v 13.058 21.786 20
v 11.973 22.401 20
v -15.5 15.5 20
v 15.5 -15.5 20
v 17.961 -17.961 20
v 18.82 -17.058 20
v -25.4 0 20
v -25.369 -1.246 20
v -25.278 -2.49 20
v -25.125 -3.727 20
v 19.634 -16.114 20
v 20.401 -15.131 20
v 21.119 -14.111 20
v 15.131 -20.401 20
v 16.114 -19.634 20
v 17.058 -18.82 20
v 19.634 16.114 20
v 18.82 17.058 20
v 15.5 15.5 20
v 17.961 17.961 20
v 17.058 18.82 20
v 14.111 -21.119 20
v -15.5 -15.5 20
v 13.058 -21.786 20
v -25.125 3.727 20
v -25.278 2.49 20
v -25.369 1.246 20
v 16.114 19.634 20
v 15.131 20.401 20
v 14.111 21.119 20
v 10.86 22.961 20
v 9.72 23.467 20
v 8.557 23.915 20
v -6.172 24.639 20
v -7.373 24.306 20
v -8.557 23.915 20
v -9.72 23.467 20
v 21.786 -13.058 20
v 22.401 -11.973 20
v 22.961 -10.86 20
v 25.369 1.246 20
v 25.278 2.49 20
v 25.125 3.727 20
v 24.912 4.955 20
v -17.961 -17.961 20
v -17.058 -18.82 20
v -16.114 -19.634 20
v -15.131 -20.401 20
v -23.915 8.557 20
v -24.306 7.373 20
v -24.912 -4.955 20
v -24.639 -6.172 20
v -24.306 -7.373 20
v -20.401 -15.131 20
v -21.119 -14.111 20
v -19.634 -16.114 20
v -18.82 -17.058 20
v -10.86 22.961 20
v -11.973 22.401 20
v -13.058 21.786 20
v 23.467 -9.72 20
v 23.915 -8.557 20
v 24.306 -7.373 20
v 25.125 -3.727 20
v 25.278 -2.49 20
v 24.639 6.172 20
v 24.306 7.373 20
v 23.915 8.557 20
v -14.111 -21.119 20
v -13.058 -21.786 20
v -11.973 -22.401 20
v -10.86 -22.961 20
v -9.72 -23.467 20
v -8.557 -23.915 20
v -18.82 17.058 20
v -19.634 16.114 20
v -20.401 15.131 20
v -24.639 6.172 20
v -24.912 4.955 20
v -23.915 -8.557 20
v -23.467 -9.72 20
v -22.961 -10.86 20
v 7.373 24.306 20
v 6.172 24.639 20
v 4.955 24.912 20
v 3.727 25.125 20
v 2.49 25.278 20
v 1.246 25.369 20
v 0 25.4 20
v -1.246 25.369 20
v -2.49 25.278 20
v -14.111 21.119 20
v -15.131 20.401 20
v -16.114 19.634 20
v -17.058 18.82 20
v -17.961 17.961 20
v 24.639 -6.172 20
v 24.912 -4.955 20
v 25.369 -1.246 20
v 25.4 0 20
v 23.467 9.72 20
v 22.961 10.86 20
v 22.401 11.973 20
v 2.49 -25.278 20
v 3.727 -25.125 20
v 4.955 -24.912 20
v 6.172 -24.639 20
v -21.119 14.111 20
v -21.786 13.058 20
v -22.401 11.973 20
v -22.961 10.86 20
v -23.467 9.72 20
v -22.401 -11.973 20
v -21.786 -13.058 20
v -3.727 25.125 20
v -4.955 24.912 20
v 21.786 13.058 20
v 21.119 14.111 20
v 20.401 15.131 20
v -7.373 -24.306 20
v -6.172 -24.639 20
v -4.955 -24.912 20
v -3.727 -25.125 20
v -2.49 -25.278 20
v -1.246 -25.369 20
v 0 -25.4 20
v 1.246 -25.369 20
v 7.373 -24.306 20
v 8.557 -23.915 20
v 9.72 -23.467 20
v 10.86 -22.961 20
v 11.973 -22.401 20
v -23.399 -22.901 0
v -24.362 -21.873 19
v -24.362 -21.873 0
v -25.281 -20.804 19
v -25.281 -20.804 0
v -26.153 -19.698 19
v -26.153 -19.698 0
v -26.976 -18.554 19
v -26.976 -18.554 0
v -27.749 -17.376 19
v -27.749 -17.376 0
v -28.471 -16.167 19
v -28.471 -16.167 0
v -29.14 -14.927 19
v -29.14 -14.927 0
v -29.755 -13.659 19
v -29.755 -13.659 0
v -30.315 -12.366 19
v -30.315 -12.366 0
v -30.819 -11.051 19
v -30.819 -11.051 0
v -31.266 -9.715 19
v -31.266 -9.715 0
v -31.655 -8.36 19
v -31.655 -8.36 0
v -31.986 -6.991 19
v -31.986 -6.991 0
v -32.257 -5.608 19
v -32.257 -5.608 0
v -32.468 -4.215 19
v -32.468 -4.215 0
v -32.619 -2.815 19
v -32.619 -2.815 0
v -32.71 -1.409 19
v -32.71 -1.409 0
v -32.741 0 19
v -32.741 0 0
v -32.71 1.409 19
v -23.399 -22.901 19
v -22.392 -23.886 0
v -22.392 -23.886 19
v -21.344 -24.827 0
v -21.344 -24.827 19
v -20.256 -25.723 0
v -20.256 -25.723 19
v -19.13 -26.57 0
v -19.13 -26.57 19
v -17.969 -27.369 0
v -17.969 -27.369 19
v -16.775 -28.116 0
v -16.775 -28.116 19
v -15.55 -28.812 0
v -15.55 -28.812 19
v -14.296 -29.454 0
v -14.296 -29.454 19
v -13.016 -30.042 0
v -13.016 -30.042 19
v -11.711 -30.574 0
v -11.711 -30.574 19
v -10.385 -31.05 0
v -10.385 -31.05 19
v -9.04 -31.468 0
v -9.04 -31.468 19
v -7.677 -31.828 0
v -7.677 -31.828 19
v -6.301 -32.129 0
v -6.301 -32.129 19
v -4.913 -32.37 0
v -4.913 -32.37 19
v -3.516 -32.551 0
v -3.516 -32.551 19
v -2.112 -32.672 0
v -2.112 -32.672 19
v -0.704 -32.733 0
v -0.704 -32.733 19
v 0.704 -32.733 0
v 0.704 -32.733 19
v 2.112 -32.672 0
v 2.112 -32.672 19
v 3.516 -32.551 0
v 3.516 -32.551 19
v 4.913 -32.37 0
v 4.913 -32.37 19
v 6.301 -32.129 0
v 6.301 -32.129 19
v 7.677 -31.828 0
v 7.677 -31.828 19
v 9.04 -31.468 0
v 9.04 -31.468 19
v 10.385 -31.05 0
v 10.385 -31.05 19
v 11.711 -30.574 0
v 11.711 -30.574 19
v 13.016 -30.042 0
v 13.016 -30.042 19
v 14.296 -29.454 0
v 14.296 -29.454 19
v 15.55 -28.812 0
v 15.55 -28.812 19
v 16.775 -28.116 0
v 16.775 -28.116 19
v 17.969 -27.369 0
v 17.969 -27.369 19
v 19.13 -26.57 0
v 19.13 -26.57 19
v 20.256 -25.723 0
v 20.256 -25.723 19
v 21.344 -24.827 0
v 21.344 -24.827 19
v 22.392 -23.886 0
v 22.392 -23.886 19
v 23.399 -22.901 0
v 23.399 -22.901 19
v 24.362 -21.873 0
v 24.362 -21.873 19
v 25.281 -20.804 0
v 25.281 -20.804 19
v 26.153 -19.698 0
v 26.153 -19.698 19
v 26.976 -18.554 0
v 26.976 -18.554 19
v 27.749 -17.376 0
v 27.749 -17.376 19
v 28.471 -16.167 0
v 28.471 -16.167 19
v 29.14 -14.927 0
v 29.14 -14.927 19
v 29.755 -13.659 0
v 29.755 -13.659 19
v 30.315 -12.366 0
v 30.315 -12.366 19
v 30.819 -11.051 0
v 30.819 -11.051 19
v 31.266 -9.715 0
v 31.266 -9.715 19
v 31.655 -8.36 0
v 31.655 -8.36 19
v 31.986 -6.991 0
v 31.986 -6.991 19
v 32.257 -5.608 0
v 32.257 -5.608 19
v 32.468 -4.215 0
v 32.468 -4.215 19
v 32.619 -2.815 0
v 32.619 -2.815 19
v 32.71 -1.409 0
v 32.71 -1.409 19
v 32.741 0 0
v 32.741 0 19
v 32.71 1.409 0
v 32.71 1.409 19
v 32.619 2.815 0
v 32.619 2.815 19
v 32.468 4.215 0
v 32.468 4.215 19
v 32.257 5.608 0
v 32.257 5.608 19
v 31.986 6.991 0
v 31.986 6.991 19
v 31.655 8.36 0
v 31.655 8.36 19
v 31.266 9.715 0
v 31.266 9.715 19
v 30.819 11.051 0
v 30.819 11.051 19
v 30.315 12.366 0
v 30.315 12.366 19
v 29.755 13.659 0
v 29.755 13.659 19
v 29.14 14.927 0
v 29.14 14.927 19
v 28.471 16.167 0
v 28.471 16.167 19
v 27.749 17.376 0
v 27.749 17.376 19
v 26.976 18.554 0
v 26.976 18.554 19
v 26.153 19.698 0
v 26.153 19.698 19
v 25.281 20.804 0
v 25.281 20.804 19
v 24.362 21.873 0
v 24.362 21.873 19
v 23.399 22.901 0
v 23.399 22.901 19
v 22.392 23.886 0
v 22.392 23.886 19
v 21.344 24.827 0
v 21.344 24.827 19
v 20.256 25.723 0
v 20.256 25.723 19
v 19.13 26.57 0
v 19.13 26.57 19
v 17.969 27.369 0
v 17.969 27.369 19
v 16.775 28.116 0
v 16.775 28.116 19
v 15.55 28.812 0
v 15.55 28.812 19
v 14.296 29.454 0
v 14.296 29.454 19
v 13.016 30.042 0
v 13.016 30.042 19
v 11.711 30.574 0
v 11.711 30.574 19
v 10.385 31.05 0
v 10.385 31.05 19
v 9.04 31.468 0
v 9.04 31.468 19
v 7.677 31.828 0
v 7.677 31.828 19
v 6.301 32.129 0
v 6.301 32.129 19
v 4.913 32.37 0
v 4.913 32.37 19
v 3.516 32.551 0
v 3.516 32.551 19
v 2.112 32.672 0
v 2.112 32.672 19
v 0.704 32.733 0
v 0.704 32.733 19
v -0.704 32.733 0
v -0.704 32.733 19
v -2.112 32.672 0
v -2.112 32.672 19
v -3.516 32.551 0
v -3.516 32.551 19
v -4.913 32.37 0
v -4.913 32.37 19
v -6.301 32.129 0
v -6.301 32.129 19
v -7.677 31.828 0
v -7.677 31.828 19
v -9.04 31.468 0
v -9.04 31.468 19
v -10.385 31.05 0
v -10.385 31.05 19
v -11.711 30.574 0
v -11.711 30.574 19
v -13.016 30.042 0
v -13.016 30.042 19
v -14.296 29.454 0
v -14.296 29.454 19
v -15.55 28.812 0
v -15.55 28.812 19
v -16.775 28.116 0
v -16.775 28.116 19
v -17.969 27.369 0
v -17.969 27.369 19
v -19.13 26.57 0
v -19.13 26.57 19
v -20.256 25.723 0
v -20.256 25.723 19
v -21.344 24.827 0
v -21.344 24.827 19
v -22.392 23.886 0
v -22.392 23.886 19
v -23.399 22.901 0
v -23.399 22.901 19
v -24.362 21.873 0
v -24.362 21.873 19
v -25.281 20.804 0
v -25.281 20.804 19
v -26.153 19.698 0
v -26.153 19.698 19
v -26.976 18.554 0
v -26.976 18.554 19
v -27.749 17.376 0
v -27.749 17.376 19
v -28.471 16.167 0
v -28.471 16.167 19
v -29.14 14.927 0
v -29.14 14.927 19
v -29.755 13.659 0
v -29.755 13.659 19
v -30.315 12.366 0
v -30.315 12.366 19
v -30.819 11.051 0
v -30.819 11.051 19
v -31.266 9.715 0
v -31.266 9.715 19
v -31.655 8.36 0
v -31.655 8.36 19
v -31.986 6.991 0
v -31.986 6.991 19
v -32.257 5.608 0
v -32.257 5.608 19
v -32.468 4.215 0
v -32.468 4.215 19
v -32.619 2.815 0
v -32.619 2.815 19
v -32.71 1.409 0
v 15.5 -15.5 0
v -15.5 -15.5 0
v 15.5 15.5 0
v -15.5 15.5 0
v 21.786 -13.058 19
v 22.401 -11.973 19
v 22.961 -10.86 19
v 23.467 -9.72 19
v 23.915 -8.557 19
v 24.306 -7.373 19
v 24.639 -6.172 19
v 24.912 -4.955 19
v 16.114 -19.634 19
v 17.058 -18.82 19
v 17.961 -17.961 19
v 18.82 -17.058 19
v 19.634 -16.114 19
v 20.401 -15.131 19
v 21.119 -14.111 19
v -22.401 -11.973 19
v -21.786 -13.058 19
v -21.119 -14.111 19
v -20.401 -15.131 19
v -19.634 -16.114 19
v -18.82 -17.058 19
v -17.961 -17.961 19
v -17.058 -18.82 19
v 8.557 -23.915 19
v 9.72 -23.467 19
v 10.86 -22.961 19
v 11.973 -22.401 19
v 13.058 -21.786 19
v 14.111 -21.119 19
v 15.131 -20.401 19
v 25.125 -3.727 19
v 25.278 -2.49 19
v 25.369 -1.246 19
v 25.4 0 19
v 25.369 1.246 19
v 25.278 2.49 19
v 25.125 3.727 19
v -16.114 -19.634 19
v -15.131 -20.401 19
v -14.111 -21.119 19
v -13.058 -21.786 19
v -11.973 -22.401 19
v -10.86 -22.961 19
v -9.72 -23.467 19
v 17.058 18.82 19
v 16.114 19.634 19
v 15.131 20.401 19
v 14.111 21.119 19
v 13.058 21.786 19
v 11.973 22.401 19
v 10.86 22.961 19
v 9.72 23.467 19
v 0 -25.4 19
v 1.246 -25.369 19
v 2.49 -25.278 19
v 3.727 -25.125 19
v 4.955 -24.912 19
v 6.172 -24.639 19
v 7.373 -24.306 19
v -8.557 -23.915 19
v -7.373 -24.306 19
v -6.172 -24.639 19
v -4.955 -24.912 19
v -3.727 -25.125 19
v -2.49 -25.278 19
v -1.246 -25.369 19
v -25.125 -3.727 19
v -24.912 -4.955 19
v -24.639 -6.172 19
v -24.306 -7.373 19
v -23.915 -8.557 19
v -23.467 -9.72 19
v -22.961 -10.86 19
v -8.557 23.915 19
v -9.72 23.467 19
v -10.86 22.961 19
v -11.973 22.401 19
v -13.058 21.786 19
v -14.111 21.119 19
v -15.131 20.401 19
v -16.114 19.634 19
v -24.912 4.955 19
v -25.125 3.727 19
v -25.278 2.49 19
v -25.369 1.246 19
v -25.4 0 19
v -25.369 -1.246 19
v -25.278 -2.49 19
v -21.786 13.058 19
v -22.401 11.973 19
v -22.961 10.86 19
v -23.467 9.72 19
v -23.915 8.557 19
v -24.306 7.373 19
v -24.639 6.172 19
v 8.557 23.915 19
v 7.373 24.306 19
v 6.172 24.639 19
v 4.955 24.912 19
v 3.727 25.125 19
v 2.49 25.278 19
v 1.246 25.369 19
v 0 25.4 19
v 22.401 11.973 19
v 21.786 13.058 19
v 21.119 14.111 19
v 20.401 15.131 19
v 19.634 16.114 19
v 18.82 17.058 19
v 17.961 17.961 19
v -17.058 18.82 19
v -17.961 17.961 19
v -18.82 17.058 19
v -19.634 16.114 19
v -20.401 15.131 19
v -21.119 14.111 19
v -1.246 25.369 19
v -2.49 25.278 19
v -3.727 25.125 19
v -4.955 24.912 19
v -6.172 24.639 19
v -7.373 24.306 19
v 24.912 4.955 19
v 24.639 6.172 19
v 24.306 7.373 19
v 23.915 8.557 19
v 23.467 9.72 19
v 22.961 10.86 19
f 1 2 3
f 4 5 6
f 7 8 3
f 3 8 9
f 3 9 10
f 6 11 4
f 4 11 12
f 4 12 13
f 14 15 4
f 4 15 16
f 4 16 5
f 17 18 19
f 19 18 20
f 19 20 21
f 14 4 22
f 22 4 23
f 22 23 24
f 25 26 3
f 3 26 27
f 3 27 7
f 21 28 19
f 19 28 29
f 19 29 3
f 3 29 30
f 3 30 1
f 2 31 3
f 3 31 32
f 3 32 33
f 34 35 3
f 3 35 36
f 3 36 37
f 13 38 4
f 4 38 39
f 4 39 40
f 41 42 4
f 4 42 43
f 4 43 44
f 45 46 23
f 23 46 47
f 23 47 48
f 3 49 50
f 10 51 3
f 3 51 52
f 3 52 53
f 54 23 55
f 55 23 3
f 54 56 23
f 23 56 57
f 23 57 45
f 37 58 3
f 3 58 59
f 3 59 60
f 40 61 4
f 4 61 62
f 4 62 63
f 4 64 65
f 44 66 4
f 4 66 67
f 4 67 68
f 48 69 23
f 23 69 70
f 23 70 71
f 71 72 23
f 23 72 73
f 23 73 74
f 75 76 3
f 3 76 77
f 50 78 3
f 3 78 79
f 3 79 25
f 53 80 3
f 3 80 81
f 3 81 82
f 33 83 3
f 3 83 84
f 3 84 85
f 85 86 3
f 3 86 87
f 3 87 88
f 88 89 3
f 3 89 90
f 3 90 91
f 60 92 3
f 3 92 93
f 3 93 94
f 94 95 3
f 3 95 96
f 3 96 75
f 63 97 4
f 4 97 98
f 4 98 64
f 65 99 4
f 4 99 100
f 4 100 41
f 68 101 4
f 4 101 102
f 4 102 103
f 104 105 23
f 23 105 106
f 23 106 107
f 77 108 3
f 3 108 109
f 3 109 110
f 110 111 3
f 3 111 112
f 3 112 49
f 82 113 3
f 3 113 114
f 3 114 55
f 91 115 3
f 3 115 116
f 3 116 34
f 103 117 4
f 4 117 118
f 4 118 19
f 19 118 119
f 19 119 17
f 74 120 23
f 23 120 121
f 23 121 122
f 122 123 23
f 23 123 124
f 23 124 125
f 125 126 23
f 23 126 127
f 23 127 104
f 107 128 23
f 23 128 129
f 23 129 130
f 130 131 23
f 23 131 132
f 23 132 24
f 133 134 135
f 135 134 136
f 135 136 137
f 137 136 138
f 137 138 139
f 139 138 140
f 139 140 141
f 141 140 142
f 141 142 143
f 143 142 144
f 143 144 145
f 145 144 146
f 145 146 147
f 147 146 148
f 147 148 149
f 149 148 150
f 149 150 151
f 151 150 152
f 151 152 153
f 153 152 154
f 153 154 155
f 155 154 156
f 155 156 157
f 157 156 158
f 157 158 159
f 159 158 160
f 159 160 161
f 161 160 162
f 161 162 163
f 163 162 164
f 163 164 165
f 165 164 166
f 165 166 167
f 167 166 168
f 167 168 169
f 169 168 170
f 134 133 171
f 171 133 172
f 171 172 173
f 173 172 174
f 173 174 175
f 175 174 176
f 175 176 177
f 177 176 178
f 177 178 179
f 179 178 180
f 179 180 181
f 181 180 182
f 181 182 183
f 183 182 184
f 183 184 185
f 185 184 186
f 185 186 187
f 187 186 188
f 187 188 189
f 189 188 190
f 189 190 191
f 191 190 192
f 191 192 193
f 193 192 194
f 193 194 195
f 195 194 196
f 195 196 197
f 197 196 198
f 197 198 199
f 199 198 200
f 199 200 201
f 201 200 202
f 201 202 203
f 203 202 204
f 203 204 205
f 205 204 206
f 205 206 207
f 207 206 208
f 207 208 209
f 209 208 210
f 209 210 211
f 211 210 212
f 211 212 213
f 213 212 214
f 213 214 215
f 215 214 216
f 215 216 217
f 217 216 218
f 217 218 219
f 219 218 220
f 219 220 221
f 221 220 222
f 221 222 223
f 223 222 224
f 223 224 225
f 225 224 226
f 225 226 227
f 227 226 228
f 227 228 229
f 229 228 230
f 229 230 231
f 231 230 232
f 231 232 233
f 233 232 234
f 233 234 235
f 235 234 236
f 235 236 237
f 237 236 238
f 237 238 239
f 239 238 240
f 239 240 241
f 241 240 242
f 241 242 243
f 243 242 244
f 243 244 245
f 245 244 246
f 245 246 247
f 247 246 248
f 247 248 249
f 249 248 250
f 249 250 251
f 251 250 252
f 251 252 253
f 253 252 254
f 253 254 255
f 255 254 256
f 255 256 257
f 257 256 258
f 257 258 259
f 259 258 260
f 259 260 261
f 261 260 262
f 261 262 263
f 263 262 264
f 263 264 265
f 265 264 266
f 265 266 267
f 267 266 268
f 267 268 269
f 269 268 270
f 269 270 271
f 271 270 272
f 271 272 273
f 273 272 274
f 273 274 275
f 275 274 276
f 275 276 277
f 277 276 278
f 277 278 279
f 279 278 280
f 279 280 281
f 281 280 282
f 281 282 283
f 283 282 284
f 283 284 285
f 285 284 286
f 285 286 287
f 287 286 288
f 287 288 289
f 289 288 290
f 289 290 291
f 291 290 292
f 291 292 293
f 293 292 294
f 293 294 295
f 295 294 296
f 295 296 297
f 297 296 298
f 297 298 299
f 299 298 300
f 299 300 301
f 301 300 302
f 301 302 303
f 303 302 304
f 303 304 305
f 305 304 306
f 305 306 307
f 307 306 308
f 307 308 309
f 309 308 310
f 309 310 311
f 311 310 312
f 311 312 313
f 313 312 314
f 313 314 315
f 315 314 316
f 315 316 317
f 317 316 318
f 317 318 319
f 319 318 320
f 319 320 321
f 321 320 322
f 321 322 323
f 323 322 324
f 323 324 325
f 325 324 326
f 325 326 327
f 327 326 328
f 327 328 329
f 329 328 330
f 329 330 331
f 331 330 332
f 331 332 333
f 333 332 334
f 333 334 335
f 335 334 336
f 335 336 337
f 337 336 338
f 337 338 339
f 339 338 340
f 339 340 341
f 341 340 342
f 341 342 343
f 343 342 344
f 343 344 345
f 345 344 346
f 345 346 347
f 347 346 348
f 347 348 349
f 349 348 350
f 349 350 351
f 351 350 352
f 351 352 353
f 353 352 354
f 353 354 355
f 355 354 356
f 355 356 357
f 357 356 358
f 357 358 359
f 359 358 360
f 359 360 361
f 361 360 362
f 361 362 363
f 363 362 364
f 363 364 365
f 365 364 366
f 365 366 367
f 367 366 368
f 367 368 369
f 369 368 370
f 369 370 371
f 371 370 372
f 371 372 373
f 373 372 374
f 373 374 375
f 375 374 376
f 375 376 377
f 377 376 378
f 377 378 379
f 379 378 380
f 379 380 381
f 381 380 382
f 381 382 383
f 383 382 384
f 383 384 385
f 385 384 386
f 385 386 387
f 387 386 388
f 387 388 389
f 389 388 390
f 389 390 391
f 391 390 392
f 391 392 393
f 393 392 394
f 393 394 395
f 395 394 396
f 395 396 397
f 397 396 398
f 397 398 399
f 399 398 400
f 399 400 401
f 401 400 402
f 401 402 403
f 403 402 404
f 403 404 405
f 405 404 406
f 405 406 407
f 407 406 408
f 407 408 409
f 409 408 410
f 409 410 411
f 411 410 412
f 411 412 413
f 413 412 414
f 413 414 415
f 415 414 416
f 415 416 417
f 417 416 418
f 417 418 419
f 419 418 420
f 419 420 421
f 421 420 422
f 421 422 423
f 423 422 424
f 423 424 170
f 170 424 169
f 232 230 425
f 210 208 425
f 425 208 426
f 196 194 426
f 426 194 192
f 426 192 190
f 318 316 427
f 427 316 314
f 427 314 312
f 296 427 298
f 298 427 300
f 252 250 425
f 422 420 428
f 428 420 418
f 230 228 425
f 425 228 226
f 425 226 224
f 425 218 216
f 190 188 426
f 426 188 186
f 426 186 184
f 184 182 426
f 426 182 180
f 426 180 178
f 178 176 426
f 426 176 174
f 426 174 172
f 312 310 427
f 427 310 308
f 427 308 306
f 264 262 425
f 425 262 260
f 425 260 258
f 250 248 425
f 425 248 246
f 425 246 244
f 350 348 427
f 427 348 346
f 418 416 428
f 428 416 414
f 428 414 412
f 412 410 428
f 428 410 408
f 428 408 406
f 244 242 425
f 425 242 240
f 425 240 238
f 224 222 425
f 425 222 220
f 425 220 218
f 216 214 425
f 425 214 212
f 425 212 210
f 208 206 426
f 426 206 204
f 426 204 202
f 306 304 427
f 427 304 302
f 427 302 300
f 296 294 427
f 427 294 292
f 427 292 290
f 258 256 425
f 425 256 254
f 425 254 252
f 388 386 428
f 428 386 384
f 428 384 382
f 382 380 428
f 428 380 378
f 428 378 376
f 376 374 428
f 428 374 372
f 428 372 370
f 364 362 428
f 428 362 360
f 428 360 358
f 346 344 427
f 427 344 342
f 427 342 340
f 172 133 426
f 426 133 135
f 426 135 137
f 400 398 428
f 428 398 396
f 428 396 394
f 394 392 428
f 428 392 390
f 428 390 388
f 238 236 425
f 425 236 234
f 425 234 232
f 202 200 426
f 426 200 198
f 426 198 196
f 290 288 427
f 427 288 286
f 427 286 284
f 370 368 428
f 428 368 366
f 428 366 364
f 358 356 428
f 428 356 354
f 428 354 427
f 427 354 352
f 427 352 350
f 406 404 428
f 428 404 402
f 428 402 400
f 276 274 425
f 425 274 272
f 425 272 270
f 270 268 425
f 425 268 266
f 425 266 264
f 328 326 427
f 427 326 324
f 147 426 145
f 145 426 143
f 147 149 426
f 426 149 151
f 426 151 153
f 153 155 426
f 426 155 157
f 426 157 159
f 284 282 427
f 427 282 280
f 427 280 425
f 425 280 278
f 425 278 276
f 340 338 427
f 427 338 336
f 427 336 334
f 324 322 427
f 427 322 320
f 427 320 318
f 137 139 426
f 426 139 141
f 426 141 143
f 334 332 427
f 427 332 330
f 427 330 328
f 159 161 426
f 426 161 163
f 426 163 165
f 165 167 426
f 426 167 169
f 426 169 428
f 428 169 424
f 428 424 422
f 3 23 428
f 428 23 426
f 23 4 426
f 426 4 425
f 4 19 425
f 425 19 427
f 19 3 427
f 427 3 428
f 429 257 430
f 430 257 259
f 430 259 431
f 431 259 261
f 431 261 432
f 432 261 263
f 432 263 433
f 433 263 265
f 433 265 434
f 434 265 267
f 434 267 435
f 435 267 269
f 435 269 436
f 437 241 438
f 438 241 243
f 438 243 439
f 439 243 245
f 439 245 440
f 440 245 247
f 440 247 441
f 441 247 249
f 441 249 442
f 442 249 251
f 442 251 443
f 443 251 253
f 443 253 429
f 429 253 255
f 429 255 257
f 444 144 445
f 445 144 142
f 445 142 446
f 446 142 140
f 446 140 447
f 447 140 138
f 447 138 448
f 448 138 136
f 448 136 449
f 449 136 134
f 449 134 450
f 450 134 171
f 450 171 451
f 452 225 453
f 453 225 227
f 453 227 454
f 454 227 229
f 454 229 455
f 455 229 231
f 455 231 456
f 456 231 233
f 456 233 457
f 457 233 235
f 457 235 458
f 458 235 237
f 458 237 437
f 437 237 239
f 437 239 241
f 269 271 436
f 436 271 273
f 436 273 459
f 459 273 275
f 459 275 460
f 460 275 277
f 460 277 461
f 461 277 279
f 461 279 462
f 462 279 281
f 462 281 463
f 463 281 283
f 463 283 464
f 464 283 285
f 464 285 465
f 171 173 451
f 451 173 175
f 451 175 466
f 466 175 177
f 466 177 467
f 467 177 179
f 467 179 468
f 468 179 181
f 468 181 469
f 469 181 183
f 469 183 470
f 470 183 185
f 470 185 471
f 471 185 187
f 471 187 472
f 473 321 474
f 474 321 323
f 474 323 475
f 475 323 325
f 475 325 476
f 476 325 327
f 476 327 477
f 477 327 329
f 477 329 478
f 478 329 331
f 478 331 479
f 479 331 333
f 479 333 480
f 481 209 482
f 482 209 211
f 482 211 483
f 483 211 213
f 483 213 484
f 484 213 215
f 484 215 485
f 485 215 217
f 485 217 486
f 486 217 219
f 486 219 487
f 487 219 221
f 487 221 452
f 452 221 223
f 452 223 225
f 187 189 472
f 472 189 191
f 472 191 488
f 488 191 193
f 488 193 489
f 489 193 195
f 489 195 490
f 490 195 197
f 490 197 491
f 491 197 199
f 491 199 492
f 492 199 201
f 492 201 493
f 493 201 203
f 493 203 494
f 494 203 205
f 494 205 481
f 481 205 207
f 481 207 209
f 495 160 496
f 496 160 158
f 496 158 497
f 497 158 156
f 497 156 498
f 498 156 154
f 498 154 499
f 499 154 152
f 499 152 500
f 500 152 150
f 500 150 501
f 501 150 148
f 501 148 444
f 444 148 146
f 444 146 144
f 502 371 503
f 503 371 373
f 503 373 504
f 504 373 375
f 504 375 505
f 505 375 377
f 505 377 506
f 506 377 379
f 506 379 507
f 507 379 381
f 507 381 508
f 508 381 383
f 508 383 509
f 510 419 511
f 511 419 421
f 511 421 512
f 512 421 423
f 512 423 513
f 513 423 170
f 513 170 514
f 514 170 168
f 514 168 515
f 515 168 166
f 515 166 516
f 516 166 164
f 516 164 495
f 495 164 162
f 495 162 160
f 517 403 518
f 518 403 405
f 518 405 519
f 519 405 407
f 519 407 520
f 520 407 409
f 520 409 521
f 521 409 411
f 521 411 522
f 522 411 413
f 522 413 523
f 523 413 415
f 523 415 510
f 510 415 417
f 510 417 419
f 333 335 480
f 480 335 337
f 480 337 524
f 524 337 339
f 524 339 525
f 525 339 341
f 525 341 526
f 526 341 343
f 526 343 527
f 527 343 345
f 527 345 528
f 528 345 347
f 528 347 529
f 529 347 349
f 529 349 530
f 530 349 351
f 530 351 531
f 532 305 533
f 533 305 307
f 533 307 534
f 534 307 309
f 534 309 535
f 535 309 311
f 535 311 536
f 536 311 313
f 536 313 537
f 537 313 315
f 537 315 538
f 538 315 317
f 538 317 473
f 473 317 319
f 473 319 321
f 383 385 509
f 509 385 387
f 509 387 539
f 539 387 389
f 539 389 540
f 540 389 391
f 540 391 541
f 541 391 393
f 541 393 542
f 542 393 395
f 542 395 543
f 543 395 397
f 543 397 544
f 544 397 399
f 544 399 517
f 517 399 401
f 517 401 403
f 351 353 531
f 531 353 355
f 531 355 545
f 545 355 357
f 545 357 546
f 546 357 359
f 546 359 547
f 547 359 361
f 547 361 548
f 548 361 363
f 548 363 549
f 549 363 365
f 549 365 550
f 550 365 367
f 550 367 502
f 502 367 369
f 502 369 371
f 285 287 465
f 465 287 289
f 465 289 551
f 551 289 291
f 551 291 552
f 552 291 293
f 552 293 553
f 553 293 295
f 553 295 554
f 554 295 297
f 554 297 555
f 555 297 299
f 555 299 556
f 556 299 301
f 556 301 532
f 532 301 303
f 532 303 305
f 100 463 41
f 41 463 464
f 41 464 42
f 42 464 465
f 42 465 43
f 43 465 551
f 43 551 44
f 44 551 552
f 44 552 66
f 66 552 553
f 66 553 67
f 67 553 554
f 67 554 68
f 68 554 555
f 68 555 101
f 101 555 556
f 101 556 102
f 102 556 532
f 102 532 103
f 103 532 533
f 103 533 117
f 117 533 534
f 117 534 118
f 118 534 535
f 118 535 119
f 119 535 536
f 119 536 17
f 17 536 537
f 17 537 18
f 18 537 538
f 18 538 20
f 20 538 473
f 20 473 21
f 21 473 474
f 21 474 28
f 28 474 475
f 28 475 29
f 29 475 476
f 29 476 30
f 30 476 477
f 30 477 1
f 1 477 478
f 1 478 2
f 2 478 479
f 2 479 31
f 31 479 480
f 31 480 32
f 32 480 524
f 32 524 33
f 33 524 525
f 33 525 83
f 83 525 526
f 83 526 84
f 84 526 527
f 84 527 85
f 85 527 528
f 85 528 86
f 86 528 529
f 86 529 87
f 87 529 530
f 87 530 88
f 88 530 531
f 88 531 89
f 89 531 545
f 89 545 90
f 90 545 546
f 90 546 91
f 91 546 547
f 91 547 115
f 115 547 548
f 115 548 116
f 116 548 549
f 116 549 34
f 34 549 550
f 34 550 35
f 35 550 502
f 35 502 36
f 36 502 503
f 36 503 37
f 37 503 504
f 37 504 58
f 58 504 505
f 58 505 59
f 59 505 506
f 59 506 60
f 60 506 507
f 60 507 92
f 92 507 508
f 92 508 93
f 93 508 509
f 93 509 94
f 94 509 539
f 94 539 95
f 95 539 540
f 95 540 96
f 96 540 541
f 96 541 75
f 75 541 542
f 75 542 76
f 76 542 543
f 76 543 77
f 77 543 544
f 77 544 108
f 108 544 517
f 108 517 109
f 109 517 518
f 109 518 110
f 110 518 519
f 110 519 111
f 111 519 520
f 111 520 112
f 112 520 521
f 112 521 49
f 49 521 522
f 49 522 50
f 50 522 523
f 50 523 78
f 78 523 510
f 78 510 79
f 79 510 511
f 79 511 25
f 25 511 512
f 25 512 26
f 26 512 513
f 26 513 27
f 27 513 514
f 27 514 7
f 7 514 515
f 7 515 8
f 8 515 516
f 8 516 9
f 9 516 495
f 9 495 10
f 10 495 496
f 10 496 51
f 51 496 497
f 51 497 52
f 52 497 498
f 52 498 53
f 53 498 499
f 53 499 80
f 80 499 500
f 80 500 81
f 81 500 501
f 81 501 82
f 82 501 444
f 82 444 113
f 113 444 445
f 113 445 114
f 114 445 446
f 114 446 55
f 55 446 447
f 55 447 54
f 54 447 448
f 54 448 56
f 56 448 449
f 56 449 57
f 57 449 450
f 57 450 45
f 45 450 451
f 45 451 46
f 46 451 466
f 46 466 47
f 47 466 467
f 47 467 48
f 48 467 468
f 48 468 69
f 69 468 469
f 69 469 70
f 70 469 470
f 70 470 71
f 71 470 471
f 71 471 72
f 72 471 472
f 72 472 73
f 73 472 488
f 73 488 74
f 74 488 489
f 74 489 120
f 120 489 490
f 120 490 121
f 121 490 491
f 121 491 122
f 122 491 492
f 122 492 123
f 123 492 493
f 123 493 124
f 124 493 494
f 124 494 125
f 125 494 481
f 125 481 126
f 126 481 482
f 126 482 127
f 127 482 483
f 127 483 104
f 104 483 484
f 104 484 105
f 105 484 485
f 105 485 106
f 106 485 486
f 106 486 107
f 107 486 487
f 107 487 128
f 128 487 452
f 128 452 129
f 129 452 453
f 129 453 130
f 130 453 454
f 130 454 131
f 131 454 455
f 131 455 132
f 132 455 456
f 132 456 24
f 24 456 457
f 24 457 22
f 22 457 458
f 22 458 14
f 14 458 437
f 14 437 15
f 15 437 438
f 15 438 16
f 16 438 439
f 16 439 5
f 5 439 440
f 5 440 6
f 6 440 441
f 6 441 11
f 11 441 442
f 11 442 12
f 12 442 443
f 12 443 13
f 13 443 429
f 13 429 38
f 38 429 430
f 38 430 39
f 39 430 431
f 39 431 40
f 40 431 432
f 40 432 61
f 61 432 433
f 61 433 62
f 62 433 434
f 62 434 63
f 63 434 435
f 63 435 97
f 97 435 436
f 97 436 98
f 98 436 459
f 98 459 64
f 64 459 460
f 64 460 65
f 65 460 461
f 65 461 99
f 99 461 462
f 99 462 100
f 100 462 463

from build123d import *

# Parameters (mm, degrees)
SKETCH1_R           = 32.7406
SKETCH1_W           = 31
SKETCH1_H           = 31
BOSS_EXTRUDE1_DEPTH = 20
SKETCH2_R           = 32.7406
SKETCH2_R_2         = 25.4
CUT_EXTRUDE1_DEPTH  = 1


with BuildPart() as part:
    # Sketch1 → Boss-Extrude1 (new body)
    with BuildSketch(Plane.XY):
        Circle(SKETCH1_R)
        Rectangle(SKETCH1_W, SKETCH1_H, mode=Mode.SUBTRACT)
    extrude(amount=BOSS_EXTRUDE1_DEPTH)

    # Sketch2 → Cut-Extrude1 (cut)
    with BuildSketch(Plane.XY.offset(20)):
        Circle(SKETCH2_R)
        Circle(SKETCH2_R_2, mode=Mode.SUBTRACT)
    extrude(amount=-CUT_EXTRUDE1_DEPTH, mode=Mode.SUBTRACT)


solid = part.part
